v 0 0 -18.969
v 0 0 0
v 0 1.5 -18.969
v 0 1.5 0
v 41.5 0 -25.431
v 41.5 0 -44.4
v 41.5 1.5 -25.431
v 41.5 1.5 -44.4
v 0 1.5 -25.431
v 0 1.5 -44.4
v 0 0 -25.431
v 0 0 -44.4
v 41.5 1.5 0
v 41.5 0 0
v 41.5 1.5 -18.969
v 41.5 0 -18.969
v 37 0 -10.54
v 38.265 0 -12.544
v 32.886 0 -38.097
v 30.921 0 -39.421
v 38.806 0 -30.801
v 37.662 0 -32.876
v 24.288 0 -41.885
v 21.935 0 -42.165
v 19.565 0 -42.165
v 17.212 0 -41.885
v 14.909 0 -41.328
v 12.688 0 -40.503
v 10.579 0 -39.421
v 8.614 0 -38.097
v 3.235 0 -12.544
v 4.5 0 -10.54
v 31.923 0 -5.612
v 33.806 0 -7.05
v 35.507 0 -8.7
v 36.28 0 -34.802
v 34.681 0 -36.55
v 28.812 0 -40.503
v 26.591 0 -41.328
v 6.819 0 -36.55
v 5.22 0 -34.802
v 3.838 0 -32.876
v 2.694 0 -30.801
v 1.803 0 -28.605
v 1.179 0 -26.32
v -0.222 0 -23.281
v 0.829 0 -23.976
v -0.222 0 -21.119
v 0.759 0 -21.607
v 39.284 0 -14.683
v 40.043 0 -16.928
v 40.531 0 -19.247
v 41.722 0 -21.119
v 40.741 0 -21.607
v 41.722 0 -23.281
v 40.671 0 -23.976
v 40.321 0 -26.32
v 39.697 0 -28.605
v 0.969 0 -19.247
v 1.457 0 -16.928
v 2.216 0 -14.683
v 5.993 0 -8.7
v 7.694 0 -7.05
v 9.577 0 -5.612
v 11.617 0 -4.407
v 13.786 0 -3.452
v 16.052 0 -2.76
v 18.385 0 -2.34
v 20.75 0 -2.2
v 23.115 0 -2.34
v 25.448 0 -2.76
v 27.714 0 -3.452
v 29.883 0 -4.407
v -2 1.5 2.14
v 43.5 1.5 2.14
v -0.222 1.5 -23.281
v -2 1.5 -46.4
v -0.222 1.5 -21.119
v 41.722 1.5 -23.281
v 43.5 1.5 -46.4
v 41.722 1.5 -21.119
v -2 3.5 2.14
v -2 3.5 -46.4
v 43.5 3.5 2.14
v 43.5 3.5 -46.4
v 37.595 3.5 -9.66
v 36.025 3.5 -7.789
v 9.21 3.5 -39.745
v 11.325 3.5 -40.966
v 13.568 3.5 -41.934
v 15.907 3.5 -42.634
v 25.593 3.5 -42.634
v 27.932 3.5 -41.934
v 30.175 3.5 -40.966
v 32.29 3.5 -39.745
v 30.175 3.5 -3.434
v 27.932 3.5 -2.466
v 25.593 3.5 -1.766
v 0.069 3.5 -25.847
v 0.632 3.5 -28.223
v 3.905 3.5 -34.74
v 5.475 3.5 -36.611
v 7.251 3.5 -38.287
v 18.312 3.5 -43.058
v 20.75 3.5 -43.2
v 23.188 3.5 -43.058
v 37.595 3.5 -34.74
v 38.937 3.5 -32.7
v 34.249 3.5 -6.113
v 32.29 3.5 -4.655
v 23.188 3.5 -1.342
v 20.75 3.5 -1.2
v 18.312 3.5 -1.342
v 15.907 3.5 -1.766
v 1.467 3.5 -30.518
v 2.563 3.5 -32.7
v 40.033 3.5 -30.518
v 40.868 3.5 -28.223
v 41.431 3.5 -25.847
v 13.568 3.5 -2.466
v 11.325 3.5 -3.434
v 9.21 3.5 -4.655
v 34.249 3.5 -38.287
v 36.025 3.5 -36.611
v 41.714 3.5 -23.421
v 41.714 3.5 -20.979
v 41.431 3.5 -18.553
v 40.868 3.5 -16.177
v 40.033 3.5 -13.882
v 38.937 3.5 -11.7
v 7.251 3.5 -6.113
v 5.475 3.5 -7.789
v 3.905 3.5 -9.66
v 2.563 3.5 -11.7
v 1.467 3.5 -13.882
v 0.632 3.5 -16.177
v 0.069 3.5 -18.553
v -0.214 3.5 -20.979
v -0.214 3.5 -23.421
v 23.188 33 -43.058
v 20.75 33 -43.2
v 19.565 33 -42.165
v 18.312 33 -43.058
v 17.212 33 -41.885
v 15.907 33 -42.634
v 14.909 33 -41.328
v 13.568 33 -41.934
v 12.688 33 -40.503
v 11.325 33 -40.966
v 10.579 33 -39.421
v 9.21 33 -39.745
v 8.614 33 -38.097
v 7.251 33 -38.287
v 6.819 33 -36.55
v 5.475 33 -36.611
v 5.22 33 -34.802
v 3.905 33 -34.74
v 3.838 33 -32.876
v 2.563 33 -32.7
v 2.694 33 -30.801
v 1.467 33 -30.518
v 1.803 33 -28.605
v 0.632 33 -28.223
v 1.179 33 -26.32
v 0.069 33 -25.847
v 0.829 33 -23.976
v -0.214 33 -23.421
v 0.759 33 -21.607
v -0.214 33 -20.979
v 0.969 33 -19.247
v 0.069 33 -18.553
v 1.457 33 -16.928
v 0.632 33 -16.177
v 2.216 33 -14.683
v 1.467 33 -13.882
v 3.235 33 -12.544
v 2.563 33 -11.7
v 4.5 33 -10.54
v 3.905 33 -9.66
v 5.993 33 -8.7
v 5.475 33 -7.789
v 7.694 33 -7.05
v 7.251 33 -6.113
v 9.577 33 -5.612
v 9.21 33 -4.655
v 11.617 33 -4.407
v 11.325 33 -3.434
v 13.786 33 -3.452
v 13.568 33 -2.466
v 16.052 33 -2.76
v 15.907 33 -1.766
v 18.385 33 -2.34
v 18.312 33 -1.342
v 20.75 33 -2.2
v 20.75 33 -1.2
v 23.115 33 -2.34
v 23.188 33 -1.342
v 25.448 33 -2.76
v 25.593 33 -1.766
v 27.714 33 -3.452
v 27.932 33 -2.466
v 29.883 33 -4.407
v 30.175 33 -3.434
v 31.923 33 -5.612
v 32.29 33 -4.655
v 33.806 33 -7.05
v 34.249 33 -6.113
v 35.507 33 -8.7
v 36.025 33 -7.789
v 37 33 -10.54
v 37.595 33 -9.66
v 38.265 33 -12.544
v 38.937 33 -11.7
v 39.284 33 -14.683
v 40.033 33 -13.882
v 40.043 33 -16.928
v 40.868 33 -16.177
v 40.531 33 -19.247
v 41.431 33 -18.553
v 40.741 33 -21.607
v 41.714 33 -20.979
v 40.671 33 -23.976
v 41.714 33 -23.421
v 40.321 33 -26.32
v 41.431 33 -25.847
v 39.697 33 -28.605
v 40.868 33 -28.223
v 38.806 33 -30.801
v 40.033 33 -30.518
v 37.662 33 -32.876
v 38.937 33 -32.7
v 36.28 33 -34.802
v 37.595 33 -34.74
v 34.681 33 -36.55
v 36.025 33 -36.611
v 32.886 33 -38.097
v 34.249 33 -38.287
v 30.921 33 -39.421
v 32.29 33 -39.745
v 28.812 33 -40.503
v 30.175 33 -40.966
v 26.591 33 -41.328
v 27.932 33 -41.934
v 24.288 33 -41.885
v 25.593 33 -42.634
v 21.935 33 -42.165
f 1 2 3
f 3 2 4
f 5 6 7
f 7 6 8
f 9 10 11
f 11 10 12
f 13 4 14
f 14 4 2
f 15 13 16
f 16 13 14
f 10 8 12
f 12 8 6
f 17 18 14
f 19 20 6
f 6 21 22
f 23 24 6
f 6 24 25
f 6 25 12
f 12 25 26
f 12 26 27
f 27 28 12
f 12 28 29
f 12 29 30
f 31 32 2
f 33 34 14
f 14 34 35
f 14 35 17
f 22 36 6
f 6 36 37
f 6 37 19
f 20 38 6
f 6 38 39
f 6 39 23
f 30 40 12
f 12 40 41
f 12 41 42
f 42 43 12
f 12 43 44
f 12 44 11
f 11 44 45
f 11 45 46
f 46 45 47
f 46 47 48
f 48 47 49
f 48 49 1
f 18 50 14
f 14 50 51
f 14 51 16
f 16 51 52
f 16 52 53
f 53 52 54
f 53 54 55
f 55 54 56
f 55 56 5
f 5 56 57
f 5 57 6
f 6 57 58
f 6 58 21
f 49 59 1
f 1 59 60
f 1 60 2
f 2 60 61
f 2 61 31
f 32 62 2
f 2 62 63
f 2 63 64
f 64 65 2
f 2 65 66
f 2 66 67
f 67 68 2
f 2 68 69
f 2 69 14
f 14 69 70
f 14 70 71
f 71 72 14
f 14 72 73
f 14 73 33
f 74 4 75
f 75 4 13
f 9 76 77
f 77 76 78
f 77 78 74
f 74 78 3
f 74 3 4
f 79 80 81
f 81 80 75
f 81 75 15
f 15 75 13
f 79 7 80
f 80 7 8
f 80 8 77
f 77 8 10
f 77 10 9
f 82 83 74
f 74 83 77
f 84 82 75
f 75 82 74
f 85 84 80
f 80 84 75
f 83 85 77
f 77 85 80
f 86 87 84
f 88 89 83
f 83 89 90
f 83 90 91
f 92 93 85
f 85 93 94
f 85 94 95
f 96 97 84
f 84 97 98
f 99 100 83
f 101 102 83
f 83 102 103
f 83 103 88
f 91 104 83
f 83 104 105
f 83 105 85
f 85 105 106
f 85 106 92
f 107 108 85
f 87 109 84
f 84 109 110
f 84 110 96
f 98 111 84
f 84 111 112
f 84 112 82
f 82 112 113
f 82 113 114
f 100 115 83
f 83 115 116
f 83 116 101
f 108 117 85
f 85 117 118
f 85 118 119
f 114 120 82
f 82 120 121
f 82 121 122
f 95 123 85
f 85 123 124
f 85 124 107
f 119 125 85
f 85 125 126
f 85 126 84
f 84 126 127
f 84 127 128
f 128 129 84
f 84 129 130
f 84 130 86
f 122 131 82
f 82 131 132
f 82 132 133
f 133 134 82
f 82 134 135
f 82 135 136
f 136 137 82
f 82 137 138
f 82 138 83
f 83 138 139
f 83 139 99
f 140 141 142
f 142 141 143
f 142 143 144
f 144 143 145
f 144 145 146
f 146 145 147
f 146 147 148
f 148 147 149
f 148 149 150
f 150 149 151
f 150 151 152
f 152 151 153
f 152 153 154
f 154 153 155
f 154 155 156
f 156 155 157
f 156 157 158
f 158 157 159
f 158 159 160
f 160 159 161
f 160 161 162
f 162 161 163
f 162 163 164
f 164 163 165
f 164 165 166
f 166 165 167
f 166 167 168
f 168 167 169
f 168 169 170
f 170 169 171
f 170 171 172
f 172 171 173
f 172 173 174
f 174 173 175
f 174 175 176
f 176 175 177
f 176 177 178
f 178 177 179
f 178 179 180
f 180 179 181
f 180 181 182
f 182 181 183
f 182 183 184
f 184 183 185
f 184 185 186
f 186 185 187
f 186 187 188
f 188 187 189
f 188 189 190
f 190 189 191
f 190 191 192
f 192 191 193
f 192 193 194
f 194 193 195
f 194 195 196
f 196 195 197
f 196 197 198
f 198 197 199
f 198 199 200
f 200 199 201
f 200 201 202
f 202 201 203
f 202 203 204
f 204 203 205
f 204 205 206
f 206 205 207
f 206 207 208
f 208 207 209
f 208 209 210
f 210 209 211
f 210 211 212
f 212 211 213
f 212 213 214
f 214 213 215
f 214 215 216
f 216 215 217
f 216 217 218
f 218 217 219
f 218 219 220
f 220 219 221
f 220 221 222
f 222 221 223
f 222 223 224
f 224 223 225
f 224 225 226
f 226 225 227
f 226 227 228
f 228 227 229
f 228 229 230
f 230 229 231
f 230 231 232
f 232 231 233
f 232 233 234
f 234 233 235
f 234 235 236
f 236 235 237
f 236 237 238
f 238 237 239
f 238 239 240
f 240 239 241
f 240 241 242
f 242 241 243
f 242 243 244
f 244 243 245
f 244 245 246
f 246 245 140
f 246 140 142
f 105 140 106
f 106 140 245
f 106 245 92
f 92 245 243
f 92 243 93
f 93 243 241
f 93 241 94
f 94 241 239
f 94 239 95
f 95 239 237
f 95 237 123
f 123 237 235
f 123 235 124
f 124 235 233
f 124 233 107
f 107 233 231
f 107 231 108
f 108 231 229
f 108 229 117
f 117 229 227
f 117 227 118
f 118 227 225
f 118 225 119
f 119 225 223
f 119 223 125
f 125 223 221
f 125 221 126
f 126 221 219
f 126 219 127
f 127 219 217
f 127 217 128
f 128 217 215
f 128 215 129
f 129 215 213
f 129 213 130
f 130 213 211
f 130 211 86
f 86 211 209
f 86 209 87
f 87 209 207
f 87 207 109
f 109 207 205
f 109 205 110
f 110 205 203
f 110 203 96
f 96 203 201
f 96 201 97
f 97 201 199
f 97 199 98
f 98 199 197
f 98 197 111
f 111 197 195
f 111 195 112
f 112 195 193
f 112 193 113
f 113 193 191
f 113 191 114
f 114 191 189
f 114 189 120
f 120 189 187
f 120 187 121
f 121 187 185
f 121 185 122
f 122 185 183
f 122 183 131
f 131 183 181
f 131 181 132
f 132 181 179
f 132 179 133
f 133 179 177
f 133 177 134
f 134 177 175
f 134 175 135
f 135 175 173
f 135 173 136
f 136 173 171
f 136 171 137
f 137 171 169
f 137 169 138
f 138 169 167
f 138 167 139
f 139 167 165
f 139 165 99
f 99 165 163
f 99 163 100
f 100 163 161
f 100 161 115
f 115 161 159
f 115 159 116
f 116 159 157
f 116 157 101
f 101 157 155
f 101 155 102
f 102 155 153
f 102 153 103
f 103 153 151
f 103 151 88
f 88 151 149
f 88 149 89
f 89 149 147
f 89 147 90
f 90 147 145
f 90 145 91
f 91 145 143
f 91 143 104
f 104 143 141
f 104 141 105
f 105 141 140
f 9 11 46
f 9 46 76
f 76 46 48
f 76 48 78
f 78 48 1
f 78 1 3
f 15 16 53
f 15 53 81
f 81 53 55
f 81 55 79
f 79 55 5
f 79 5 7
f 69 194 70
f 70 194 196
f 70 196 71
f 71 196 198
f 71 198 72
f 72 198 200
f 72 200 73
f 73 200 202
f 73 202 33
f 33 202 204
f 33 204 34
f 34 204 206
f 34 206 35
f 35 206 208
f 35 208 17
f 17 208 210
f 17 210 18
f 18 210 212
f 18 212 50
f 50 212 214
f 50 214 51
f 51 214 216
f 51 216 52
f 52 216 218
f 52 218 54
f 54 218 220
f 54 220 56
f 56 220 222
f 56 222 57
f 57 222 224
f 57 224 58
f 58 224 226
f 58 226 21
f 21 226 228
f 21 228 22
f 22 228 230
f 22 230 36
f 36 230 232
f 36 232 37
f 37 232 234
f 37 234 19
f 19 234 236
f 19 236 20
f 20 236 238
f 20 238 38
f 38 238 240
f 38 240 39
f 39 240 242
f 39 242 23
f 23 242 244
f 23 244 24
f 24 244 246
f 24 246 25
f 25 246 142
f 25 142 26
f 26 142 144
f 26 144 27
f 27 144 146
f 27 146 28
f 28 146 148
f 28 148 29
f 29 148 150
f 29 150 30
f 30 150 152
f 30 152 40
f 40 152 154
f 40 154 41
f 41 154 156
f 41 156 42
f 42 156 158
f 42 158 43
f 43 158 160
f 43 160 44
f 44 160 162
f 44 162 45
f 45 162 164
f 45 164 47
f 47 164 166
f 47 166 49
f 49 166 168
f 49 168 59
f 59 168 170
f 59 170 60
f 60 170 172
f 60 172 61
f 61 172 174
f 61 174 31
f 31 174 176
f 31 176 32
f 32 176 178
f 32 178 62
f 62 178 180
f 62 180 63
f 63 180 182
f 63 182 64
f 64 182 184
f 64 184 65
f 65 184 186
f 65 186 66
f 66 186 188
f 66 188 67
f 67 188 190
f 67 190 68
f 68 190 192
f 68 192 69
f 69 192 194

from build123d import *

# Parameters (mm, degrees)
CROQUIS1_W              = 41.5
CROQUIS1_H              = 44.4
SALIENTE_EXTRUIR1_DEPTH = 1.5
CROQUIS2_W              = 45.5
CROQUIS2_H              = 48.539759036
SALIENTE_EXTRUIR2_DEPTH = 2
CROQUIS3_R              = 21
SALIENTE_EXTRUIR3_DEPTH = 33
CROQUIS4_R              = 20
CORTAR_EXTRUIR1_DEPTH   = 72.653401873


with BuildPart() as part:
    # Croquis1 → Saliente-Extruir1 (new body)
    with BuildSketch(Plane(origin=(0, 0, 0), x_dir=(1, 0, 0), z_dir=(0, 1, 0))):
        with Locations((20.75, 22.2)):
            Rectangle(CROQUIS1_W, CROQUIS1_H)
    extrude(amount=SALIENTE_EXTRUIR1_DEPTH)

    # Croquis2 → Saliente-Extruir2 (add)
    with BuildSketch(Plane(origin=(0, 1.5, 0), x_dir=(1, 0, 0), z_dir=(0, 1, 0))):
        with Locations((20.75, 22.130120482)):
            Rectangle(CROQUIS2_W, CROQUIS2_H)
    extrude(amount=SALIENTE_EXTRUIR2_DEPTH)

    # Croquis3 → Saliente-Extruir3 (add)
    with BuildSketch(Plane.XZ):
        with Locations(Location((20.75, -22.2, 0), (0, 0, 270))):
            Circle(CROQUIS3_R)
    extrude(amount=-SALIENTE_EXTRUIR3_DEPTH)

    # Croquis4 → Cortar-Extruir1 (cut, through all)
    with BuildSketch(Plane(origin=(0, 33, 0), x_dir=(1, 0, 0), z_dir=(0, 1, 0))):
        with Locations(Location((20.75, 22.2, 0), (0, 0, 270))):
            Circle(CROQUIS4_R)
    extrude(amount=-CORTAR_EXTRUIR1_DEPTH, mode=Mode.SUBTRACT)


solid = part.part
